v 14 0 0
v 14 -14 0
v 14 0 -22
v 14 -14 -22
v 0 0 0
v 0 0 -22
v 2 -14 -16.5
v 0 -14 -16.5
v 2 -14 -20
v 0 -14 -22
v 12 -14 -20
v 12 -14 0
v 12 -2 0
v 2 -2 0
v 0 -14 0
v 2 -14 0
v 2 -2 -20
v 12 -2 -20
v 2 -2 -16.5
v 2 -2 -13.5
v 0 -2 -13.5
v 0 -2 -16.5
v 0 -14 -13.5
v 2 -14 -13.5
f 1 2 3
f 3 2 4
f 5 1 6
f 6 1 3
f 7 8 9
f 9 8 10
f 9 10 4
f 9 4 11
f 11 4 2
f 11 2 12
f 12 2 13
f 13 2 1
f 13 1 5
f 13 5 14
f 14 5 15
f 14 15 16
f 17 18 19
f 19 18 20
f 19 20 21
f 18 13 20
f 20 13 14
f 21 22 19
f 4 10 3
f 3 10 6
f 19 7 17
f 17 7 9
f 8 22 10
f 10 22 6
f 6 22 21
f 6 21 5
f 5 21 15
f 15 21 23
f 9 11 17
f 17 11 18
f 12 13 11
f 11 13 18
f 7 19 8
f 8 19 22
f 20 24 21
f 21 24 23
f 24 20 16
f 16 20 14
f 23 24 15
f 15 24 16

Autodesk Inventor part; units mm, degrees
ref_plane "YZ Plane" through (0, 0, 0) normal (1, 0, 0) x (0, 1, 0)
ref_plane "XZ Plane" through (0, 0, 0) normal (0, 1, 0) x (-1, 0, 0)
ref_plane "XY Plane" through (0, 0, 0) normal (0, 0, 1) x (1, 0, 0)
sketch "Sketch1" plane through (0, 0, 0) normal (0, 0, 1) x (1, 0, 0)
  line L0 (0, 0) -> (14, 0)
  line L1 (14, 0) -> (14, -14)
  line L2 (14, -14) -> (0, -14)
  line L3 (0, -14) -> (0, 0)
  dimension "d0" = 14
  dimension "d1" = 14
extrude "Extrusion1" add sketch "Sketch1" against normal blind 22
sketch "Sketch2" plane through (0, 0, 0) normal (0, 0, 1) x (1, 0, 0)
  line L0 (2, -2) -> (12, -2)
  line L1 (12, -2) -> (12, -22)
  line L2 (12, -22) -> (2, -22)
  line L3 (2, -22) -> (2, -2)
  point P0 (0, 0)
  dimension "d4" = 10
  dimension "d5" = 20
extrude "Extrusion2" cut sketch "Sketch2" against normal blind 20
sketch "Sketch3" plane through (0, -14, 0) normal (-1, 0, 0) x (0, 0, 1)
  line L0 (0, 0) -> (-20, 0) projected
  line L1 (-13.5, 12) -> (-16.5, 12)
  line L2 (-16.5, 12) -> (-16.5, 0)
  line L3 (-16.5, 0) -> (-13.5, 0)
  line L4 (-13.5, 0) -> (-13.5, 12)
  point P0 (0, 14)
  dimension "d8" = 3
extrude "Extrusion3" cut sketch "Sketch3" against normal blind 10
properties part number "housing_v02"
